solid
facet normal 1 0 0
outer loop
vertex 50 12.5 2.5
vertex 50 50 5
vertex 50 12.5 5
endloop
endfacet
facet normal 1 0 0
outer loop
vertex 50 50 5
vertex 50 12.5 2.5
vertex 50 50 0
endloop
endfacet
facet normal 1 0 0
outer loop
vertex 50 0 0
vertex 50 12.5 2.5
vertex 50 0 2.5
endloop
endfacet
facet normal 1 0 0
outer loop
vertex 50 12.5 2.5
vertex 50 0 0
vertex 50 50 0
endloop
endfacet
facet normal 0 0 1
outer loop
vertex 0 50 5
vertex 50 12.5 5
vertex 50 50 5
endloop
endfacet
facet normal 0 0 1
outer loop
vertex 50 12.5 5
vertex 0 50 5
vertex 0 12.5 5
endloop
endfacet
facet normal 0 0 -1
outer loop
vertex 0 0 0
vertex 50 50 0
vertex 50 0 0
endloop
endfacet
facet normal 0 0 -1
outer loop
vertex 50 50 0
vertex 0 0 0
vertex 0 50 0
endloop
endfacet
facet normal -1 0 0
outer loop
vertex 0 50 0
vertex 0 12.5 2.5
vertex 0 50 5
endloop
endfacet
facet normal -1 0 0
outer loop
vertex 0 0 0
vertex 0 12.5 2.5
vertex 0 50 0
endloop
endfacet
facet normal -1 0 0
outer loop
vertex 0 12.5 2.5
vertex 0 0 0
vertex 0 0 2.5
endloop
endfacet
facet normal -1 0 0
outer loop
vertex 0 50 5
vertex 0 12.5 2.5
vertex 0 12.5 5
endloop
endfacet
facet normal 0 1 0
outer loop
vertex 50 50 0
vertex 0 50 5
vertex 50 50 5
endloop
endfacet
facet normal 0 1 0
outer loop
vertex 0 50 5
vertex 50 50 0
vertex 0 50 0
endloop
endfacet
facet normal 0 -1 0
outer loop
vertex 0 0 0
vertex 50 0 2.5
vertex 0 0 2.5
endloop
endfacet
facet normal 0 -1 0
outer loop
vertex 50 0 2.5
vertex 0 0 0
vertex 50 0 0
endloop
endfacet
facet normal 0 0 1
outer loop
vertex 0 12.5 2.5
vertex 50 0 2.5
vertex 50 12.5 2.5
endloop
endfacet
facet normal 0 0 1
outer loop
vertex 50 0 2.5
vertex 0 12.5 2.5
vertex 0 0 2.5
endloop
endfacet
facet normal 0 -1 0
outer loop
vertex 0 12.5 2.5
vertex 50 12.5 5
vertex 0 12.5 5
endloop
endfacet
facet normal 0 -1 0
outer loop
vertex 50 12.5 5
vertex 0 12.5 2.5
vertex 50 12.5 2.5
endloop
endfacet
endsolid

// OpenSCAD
difference() {
    cube([50, 50, 5]);
    translate([0, 0, 2.5])
        cube([50, 12.5, 2.5]);
}
